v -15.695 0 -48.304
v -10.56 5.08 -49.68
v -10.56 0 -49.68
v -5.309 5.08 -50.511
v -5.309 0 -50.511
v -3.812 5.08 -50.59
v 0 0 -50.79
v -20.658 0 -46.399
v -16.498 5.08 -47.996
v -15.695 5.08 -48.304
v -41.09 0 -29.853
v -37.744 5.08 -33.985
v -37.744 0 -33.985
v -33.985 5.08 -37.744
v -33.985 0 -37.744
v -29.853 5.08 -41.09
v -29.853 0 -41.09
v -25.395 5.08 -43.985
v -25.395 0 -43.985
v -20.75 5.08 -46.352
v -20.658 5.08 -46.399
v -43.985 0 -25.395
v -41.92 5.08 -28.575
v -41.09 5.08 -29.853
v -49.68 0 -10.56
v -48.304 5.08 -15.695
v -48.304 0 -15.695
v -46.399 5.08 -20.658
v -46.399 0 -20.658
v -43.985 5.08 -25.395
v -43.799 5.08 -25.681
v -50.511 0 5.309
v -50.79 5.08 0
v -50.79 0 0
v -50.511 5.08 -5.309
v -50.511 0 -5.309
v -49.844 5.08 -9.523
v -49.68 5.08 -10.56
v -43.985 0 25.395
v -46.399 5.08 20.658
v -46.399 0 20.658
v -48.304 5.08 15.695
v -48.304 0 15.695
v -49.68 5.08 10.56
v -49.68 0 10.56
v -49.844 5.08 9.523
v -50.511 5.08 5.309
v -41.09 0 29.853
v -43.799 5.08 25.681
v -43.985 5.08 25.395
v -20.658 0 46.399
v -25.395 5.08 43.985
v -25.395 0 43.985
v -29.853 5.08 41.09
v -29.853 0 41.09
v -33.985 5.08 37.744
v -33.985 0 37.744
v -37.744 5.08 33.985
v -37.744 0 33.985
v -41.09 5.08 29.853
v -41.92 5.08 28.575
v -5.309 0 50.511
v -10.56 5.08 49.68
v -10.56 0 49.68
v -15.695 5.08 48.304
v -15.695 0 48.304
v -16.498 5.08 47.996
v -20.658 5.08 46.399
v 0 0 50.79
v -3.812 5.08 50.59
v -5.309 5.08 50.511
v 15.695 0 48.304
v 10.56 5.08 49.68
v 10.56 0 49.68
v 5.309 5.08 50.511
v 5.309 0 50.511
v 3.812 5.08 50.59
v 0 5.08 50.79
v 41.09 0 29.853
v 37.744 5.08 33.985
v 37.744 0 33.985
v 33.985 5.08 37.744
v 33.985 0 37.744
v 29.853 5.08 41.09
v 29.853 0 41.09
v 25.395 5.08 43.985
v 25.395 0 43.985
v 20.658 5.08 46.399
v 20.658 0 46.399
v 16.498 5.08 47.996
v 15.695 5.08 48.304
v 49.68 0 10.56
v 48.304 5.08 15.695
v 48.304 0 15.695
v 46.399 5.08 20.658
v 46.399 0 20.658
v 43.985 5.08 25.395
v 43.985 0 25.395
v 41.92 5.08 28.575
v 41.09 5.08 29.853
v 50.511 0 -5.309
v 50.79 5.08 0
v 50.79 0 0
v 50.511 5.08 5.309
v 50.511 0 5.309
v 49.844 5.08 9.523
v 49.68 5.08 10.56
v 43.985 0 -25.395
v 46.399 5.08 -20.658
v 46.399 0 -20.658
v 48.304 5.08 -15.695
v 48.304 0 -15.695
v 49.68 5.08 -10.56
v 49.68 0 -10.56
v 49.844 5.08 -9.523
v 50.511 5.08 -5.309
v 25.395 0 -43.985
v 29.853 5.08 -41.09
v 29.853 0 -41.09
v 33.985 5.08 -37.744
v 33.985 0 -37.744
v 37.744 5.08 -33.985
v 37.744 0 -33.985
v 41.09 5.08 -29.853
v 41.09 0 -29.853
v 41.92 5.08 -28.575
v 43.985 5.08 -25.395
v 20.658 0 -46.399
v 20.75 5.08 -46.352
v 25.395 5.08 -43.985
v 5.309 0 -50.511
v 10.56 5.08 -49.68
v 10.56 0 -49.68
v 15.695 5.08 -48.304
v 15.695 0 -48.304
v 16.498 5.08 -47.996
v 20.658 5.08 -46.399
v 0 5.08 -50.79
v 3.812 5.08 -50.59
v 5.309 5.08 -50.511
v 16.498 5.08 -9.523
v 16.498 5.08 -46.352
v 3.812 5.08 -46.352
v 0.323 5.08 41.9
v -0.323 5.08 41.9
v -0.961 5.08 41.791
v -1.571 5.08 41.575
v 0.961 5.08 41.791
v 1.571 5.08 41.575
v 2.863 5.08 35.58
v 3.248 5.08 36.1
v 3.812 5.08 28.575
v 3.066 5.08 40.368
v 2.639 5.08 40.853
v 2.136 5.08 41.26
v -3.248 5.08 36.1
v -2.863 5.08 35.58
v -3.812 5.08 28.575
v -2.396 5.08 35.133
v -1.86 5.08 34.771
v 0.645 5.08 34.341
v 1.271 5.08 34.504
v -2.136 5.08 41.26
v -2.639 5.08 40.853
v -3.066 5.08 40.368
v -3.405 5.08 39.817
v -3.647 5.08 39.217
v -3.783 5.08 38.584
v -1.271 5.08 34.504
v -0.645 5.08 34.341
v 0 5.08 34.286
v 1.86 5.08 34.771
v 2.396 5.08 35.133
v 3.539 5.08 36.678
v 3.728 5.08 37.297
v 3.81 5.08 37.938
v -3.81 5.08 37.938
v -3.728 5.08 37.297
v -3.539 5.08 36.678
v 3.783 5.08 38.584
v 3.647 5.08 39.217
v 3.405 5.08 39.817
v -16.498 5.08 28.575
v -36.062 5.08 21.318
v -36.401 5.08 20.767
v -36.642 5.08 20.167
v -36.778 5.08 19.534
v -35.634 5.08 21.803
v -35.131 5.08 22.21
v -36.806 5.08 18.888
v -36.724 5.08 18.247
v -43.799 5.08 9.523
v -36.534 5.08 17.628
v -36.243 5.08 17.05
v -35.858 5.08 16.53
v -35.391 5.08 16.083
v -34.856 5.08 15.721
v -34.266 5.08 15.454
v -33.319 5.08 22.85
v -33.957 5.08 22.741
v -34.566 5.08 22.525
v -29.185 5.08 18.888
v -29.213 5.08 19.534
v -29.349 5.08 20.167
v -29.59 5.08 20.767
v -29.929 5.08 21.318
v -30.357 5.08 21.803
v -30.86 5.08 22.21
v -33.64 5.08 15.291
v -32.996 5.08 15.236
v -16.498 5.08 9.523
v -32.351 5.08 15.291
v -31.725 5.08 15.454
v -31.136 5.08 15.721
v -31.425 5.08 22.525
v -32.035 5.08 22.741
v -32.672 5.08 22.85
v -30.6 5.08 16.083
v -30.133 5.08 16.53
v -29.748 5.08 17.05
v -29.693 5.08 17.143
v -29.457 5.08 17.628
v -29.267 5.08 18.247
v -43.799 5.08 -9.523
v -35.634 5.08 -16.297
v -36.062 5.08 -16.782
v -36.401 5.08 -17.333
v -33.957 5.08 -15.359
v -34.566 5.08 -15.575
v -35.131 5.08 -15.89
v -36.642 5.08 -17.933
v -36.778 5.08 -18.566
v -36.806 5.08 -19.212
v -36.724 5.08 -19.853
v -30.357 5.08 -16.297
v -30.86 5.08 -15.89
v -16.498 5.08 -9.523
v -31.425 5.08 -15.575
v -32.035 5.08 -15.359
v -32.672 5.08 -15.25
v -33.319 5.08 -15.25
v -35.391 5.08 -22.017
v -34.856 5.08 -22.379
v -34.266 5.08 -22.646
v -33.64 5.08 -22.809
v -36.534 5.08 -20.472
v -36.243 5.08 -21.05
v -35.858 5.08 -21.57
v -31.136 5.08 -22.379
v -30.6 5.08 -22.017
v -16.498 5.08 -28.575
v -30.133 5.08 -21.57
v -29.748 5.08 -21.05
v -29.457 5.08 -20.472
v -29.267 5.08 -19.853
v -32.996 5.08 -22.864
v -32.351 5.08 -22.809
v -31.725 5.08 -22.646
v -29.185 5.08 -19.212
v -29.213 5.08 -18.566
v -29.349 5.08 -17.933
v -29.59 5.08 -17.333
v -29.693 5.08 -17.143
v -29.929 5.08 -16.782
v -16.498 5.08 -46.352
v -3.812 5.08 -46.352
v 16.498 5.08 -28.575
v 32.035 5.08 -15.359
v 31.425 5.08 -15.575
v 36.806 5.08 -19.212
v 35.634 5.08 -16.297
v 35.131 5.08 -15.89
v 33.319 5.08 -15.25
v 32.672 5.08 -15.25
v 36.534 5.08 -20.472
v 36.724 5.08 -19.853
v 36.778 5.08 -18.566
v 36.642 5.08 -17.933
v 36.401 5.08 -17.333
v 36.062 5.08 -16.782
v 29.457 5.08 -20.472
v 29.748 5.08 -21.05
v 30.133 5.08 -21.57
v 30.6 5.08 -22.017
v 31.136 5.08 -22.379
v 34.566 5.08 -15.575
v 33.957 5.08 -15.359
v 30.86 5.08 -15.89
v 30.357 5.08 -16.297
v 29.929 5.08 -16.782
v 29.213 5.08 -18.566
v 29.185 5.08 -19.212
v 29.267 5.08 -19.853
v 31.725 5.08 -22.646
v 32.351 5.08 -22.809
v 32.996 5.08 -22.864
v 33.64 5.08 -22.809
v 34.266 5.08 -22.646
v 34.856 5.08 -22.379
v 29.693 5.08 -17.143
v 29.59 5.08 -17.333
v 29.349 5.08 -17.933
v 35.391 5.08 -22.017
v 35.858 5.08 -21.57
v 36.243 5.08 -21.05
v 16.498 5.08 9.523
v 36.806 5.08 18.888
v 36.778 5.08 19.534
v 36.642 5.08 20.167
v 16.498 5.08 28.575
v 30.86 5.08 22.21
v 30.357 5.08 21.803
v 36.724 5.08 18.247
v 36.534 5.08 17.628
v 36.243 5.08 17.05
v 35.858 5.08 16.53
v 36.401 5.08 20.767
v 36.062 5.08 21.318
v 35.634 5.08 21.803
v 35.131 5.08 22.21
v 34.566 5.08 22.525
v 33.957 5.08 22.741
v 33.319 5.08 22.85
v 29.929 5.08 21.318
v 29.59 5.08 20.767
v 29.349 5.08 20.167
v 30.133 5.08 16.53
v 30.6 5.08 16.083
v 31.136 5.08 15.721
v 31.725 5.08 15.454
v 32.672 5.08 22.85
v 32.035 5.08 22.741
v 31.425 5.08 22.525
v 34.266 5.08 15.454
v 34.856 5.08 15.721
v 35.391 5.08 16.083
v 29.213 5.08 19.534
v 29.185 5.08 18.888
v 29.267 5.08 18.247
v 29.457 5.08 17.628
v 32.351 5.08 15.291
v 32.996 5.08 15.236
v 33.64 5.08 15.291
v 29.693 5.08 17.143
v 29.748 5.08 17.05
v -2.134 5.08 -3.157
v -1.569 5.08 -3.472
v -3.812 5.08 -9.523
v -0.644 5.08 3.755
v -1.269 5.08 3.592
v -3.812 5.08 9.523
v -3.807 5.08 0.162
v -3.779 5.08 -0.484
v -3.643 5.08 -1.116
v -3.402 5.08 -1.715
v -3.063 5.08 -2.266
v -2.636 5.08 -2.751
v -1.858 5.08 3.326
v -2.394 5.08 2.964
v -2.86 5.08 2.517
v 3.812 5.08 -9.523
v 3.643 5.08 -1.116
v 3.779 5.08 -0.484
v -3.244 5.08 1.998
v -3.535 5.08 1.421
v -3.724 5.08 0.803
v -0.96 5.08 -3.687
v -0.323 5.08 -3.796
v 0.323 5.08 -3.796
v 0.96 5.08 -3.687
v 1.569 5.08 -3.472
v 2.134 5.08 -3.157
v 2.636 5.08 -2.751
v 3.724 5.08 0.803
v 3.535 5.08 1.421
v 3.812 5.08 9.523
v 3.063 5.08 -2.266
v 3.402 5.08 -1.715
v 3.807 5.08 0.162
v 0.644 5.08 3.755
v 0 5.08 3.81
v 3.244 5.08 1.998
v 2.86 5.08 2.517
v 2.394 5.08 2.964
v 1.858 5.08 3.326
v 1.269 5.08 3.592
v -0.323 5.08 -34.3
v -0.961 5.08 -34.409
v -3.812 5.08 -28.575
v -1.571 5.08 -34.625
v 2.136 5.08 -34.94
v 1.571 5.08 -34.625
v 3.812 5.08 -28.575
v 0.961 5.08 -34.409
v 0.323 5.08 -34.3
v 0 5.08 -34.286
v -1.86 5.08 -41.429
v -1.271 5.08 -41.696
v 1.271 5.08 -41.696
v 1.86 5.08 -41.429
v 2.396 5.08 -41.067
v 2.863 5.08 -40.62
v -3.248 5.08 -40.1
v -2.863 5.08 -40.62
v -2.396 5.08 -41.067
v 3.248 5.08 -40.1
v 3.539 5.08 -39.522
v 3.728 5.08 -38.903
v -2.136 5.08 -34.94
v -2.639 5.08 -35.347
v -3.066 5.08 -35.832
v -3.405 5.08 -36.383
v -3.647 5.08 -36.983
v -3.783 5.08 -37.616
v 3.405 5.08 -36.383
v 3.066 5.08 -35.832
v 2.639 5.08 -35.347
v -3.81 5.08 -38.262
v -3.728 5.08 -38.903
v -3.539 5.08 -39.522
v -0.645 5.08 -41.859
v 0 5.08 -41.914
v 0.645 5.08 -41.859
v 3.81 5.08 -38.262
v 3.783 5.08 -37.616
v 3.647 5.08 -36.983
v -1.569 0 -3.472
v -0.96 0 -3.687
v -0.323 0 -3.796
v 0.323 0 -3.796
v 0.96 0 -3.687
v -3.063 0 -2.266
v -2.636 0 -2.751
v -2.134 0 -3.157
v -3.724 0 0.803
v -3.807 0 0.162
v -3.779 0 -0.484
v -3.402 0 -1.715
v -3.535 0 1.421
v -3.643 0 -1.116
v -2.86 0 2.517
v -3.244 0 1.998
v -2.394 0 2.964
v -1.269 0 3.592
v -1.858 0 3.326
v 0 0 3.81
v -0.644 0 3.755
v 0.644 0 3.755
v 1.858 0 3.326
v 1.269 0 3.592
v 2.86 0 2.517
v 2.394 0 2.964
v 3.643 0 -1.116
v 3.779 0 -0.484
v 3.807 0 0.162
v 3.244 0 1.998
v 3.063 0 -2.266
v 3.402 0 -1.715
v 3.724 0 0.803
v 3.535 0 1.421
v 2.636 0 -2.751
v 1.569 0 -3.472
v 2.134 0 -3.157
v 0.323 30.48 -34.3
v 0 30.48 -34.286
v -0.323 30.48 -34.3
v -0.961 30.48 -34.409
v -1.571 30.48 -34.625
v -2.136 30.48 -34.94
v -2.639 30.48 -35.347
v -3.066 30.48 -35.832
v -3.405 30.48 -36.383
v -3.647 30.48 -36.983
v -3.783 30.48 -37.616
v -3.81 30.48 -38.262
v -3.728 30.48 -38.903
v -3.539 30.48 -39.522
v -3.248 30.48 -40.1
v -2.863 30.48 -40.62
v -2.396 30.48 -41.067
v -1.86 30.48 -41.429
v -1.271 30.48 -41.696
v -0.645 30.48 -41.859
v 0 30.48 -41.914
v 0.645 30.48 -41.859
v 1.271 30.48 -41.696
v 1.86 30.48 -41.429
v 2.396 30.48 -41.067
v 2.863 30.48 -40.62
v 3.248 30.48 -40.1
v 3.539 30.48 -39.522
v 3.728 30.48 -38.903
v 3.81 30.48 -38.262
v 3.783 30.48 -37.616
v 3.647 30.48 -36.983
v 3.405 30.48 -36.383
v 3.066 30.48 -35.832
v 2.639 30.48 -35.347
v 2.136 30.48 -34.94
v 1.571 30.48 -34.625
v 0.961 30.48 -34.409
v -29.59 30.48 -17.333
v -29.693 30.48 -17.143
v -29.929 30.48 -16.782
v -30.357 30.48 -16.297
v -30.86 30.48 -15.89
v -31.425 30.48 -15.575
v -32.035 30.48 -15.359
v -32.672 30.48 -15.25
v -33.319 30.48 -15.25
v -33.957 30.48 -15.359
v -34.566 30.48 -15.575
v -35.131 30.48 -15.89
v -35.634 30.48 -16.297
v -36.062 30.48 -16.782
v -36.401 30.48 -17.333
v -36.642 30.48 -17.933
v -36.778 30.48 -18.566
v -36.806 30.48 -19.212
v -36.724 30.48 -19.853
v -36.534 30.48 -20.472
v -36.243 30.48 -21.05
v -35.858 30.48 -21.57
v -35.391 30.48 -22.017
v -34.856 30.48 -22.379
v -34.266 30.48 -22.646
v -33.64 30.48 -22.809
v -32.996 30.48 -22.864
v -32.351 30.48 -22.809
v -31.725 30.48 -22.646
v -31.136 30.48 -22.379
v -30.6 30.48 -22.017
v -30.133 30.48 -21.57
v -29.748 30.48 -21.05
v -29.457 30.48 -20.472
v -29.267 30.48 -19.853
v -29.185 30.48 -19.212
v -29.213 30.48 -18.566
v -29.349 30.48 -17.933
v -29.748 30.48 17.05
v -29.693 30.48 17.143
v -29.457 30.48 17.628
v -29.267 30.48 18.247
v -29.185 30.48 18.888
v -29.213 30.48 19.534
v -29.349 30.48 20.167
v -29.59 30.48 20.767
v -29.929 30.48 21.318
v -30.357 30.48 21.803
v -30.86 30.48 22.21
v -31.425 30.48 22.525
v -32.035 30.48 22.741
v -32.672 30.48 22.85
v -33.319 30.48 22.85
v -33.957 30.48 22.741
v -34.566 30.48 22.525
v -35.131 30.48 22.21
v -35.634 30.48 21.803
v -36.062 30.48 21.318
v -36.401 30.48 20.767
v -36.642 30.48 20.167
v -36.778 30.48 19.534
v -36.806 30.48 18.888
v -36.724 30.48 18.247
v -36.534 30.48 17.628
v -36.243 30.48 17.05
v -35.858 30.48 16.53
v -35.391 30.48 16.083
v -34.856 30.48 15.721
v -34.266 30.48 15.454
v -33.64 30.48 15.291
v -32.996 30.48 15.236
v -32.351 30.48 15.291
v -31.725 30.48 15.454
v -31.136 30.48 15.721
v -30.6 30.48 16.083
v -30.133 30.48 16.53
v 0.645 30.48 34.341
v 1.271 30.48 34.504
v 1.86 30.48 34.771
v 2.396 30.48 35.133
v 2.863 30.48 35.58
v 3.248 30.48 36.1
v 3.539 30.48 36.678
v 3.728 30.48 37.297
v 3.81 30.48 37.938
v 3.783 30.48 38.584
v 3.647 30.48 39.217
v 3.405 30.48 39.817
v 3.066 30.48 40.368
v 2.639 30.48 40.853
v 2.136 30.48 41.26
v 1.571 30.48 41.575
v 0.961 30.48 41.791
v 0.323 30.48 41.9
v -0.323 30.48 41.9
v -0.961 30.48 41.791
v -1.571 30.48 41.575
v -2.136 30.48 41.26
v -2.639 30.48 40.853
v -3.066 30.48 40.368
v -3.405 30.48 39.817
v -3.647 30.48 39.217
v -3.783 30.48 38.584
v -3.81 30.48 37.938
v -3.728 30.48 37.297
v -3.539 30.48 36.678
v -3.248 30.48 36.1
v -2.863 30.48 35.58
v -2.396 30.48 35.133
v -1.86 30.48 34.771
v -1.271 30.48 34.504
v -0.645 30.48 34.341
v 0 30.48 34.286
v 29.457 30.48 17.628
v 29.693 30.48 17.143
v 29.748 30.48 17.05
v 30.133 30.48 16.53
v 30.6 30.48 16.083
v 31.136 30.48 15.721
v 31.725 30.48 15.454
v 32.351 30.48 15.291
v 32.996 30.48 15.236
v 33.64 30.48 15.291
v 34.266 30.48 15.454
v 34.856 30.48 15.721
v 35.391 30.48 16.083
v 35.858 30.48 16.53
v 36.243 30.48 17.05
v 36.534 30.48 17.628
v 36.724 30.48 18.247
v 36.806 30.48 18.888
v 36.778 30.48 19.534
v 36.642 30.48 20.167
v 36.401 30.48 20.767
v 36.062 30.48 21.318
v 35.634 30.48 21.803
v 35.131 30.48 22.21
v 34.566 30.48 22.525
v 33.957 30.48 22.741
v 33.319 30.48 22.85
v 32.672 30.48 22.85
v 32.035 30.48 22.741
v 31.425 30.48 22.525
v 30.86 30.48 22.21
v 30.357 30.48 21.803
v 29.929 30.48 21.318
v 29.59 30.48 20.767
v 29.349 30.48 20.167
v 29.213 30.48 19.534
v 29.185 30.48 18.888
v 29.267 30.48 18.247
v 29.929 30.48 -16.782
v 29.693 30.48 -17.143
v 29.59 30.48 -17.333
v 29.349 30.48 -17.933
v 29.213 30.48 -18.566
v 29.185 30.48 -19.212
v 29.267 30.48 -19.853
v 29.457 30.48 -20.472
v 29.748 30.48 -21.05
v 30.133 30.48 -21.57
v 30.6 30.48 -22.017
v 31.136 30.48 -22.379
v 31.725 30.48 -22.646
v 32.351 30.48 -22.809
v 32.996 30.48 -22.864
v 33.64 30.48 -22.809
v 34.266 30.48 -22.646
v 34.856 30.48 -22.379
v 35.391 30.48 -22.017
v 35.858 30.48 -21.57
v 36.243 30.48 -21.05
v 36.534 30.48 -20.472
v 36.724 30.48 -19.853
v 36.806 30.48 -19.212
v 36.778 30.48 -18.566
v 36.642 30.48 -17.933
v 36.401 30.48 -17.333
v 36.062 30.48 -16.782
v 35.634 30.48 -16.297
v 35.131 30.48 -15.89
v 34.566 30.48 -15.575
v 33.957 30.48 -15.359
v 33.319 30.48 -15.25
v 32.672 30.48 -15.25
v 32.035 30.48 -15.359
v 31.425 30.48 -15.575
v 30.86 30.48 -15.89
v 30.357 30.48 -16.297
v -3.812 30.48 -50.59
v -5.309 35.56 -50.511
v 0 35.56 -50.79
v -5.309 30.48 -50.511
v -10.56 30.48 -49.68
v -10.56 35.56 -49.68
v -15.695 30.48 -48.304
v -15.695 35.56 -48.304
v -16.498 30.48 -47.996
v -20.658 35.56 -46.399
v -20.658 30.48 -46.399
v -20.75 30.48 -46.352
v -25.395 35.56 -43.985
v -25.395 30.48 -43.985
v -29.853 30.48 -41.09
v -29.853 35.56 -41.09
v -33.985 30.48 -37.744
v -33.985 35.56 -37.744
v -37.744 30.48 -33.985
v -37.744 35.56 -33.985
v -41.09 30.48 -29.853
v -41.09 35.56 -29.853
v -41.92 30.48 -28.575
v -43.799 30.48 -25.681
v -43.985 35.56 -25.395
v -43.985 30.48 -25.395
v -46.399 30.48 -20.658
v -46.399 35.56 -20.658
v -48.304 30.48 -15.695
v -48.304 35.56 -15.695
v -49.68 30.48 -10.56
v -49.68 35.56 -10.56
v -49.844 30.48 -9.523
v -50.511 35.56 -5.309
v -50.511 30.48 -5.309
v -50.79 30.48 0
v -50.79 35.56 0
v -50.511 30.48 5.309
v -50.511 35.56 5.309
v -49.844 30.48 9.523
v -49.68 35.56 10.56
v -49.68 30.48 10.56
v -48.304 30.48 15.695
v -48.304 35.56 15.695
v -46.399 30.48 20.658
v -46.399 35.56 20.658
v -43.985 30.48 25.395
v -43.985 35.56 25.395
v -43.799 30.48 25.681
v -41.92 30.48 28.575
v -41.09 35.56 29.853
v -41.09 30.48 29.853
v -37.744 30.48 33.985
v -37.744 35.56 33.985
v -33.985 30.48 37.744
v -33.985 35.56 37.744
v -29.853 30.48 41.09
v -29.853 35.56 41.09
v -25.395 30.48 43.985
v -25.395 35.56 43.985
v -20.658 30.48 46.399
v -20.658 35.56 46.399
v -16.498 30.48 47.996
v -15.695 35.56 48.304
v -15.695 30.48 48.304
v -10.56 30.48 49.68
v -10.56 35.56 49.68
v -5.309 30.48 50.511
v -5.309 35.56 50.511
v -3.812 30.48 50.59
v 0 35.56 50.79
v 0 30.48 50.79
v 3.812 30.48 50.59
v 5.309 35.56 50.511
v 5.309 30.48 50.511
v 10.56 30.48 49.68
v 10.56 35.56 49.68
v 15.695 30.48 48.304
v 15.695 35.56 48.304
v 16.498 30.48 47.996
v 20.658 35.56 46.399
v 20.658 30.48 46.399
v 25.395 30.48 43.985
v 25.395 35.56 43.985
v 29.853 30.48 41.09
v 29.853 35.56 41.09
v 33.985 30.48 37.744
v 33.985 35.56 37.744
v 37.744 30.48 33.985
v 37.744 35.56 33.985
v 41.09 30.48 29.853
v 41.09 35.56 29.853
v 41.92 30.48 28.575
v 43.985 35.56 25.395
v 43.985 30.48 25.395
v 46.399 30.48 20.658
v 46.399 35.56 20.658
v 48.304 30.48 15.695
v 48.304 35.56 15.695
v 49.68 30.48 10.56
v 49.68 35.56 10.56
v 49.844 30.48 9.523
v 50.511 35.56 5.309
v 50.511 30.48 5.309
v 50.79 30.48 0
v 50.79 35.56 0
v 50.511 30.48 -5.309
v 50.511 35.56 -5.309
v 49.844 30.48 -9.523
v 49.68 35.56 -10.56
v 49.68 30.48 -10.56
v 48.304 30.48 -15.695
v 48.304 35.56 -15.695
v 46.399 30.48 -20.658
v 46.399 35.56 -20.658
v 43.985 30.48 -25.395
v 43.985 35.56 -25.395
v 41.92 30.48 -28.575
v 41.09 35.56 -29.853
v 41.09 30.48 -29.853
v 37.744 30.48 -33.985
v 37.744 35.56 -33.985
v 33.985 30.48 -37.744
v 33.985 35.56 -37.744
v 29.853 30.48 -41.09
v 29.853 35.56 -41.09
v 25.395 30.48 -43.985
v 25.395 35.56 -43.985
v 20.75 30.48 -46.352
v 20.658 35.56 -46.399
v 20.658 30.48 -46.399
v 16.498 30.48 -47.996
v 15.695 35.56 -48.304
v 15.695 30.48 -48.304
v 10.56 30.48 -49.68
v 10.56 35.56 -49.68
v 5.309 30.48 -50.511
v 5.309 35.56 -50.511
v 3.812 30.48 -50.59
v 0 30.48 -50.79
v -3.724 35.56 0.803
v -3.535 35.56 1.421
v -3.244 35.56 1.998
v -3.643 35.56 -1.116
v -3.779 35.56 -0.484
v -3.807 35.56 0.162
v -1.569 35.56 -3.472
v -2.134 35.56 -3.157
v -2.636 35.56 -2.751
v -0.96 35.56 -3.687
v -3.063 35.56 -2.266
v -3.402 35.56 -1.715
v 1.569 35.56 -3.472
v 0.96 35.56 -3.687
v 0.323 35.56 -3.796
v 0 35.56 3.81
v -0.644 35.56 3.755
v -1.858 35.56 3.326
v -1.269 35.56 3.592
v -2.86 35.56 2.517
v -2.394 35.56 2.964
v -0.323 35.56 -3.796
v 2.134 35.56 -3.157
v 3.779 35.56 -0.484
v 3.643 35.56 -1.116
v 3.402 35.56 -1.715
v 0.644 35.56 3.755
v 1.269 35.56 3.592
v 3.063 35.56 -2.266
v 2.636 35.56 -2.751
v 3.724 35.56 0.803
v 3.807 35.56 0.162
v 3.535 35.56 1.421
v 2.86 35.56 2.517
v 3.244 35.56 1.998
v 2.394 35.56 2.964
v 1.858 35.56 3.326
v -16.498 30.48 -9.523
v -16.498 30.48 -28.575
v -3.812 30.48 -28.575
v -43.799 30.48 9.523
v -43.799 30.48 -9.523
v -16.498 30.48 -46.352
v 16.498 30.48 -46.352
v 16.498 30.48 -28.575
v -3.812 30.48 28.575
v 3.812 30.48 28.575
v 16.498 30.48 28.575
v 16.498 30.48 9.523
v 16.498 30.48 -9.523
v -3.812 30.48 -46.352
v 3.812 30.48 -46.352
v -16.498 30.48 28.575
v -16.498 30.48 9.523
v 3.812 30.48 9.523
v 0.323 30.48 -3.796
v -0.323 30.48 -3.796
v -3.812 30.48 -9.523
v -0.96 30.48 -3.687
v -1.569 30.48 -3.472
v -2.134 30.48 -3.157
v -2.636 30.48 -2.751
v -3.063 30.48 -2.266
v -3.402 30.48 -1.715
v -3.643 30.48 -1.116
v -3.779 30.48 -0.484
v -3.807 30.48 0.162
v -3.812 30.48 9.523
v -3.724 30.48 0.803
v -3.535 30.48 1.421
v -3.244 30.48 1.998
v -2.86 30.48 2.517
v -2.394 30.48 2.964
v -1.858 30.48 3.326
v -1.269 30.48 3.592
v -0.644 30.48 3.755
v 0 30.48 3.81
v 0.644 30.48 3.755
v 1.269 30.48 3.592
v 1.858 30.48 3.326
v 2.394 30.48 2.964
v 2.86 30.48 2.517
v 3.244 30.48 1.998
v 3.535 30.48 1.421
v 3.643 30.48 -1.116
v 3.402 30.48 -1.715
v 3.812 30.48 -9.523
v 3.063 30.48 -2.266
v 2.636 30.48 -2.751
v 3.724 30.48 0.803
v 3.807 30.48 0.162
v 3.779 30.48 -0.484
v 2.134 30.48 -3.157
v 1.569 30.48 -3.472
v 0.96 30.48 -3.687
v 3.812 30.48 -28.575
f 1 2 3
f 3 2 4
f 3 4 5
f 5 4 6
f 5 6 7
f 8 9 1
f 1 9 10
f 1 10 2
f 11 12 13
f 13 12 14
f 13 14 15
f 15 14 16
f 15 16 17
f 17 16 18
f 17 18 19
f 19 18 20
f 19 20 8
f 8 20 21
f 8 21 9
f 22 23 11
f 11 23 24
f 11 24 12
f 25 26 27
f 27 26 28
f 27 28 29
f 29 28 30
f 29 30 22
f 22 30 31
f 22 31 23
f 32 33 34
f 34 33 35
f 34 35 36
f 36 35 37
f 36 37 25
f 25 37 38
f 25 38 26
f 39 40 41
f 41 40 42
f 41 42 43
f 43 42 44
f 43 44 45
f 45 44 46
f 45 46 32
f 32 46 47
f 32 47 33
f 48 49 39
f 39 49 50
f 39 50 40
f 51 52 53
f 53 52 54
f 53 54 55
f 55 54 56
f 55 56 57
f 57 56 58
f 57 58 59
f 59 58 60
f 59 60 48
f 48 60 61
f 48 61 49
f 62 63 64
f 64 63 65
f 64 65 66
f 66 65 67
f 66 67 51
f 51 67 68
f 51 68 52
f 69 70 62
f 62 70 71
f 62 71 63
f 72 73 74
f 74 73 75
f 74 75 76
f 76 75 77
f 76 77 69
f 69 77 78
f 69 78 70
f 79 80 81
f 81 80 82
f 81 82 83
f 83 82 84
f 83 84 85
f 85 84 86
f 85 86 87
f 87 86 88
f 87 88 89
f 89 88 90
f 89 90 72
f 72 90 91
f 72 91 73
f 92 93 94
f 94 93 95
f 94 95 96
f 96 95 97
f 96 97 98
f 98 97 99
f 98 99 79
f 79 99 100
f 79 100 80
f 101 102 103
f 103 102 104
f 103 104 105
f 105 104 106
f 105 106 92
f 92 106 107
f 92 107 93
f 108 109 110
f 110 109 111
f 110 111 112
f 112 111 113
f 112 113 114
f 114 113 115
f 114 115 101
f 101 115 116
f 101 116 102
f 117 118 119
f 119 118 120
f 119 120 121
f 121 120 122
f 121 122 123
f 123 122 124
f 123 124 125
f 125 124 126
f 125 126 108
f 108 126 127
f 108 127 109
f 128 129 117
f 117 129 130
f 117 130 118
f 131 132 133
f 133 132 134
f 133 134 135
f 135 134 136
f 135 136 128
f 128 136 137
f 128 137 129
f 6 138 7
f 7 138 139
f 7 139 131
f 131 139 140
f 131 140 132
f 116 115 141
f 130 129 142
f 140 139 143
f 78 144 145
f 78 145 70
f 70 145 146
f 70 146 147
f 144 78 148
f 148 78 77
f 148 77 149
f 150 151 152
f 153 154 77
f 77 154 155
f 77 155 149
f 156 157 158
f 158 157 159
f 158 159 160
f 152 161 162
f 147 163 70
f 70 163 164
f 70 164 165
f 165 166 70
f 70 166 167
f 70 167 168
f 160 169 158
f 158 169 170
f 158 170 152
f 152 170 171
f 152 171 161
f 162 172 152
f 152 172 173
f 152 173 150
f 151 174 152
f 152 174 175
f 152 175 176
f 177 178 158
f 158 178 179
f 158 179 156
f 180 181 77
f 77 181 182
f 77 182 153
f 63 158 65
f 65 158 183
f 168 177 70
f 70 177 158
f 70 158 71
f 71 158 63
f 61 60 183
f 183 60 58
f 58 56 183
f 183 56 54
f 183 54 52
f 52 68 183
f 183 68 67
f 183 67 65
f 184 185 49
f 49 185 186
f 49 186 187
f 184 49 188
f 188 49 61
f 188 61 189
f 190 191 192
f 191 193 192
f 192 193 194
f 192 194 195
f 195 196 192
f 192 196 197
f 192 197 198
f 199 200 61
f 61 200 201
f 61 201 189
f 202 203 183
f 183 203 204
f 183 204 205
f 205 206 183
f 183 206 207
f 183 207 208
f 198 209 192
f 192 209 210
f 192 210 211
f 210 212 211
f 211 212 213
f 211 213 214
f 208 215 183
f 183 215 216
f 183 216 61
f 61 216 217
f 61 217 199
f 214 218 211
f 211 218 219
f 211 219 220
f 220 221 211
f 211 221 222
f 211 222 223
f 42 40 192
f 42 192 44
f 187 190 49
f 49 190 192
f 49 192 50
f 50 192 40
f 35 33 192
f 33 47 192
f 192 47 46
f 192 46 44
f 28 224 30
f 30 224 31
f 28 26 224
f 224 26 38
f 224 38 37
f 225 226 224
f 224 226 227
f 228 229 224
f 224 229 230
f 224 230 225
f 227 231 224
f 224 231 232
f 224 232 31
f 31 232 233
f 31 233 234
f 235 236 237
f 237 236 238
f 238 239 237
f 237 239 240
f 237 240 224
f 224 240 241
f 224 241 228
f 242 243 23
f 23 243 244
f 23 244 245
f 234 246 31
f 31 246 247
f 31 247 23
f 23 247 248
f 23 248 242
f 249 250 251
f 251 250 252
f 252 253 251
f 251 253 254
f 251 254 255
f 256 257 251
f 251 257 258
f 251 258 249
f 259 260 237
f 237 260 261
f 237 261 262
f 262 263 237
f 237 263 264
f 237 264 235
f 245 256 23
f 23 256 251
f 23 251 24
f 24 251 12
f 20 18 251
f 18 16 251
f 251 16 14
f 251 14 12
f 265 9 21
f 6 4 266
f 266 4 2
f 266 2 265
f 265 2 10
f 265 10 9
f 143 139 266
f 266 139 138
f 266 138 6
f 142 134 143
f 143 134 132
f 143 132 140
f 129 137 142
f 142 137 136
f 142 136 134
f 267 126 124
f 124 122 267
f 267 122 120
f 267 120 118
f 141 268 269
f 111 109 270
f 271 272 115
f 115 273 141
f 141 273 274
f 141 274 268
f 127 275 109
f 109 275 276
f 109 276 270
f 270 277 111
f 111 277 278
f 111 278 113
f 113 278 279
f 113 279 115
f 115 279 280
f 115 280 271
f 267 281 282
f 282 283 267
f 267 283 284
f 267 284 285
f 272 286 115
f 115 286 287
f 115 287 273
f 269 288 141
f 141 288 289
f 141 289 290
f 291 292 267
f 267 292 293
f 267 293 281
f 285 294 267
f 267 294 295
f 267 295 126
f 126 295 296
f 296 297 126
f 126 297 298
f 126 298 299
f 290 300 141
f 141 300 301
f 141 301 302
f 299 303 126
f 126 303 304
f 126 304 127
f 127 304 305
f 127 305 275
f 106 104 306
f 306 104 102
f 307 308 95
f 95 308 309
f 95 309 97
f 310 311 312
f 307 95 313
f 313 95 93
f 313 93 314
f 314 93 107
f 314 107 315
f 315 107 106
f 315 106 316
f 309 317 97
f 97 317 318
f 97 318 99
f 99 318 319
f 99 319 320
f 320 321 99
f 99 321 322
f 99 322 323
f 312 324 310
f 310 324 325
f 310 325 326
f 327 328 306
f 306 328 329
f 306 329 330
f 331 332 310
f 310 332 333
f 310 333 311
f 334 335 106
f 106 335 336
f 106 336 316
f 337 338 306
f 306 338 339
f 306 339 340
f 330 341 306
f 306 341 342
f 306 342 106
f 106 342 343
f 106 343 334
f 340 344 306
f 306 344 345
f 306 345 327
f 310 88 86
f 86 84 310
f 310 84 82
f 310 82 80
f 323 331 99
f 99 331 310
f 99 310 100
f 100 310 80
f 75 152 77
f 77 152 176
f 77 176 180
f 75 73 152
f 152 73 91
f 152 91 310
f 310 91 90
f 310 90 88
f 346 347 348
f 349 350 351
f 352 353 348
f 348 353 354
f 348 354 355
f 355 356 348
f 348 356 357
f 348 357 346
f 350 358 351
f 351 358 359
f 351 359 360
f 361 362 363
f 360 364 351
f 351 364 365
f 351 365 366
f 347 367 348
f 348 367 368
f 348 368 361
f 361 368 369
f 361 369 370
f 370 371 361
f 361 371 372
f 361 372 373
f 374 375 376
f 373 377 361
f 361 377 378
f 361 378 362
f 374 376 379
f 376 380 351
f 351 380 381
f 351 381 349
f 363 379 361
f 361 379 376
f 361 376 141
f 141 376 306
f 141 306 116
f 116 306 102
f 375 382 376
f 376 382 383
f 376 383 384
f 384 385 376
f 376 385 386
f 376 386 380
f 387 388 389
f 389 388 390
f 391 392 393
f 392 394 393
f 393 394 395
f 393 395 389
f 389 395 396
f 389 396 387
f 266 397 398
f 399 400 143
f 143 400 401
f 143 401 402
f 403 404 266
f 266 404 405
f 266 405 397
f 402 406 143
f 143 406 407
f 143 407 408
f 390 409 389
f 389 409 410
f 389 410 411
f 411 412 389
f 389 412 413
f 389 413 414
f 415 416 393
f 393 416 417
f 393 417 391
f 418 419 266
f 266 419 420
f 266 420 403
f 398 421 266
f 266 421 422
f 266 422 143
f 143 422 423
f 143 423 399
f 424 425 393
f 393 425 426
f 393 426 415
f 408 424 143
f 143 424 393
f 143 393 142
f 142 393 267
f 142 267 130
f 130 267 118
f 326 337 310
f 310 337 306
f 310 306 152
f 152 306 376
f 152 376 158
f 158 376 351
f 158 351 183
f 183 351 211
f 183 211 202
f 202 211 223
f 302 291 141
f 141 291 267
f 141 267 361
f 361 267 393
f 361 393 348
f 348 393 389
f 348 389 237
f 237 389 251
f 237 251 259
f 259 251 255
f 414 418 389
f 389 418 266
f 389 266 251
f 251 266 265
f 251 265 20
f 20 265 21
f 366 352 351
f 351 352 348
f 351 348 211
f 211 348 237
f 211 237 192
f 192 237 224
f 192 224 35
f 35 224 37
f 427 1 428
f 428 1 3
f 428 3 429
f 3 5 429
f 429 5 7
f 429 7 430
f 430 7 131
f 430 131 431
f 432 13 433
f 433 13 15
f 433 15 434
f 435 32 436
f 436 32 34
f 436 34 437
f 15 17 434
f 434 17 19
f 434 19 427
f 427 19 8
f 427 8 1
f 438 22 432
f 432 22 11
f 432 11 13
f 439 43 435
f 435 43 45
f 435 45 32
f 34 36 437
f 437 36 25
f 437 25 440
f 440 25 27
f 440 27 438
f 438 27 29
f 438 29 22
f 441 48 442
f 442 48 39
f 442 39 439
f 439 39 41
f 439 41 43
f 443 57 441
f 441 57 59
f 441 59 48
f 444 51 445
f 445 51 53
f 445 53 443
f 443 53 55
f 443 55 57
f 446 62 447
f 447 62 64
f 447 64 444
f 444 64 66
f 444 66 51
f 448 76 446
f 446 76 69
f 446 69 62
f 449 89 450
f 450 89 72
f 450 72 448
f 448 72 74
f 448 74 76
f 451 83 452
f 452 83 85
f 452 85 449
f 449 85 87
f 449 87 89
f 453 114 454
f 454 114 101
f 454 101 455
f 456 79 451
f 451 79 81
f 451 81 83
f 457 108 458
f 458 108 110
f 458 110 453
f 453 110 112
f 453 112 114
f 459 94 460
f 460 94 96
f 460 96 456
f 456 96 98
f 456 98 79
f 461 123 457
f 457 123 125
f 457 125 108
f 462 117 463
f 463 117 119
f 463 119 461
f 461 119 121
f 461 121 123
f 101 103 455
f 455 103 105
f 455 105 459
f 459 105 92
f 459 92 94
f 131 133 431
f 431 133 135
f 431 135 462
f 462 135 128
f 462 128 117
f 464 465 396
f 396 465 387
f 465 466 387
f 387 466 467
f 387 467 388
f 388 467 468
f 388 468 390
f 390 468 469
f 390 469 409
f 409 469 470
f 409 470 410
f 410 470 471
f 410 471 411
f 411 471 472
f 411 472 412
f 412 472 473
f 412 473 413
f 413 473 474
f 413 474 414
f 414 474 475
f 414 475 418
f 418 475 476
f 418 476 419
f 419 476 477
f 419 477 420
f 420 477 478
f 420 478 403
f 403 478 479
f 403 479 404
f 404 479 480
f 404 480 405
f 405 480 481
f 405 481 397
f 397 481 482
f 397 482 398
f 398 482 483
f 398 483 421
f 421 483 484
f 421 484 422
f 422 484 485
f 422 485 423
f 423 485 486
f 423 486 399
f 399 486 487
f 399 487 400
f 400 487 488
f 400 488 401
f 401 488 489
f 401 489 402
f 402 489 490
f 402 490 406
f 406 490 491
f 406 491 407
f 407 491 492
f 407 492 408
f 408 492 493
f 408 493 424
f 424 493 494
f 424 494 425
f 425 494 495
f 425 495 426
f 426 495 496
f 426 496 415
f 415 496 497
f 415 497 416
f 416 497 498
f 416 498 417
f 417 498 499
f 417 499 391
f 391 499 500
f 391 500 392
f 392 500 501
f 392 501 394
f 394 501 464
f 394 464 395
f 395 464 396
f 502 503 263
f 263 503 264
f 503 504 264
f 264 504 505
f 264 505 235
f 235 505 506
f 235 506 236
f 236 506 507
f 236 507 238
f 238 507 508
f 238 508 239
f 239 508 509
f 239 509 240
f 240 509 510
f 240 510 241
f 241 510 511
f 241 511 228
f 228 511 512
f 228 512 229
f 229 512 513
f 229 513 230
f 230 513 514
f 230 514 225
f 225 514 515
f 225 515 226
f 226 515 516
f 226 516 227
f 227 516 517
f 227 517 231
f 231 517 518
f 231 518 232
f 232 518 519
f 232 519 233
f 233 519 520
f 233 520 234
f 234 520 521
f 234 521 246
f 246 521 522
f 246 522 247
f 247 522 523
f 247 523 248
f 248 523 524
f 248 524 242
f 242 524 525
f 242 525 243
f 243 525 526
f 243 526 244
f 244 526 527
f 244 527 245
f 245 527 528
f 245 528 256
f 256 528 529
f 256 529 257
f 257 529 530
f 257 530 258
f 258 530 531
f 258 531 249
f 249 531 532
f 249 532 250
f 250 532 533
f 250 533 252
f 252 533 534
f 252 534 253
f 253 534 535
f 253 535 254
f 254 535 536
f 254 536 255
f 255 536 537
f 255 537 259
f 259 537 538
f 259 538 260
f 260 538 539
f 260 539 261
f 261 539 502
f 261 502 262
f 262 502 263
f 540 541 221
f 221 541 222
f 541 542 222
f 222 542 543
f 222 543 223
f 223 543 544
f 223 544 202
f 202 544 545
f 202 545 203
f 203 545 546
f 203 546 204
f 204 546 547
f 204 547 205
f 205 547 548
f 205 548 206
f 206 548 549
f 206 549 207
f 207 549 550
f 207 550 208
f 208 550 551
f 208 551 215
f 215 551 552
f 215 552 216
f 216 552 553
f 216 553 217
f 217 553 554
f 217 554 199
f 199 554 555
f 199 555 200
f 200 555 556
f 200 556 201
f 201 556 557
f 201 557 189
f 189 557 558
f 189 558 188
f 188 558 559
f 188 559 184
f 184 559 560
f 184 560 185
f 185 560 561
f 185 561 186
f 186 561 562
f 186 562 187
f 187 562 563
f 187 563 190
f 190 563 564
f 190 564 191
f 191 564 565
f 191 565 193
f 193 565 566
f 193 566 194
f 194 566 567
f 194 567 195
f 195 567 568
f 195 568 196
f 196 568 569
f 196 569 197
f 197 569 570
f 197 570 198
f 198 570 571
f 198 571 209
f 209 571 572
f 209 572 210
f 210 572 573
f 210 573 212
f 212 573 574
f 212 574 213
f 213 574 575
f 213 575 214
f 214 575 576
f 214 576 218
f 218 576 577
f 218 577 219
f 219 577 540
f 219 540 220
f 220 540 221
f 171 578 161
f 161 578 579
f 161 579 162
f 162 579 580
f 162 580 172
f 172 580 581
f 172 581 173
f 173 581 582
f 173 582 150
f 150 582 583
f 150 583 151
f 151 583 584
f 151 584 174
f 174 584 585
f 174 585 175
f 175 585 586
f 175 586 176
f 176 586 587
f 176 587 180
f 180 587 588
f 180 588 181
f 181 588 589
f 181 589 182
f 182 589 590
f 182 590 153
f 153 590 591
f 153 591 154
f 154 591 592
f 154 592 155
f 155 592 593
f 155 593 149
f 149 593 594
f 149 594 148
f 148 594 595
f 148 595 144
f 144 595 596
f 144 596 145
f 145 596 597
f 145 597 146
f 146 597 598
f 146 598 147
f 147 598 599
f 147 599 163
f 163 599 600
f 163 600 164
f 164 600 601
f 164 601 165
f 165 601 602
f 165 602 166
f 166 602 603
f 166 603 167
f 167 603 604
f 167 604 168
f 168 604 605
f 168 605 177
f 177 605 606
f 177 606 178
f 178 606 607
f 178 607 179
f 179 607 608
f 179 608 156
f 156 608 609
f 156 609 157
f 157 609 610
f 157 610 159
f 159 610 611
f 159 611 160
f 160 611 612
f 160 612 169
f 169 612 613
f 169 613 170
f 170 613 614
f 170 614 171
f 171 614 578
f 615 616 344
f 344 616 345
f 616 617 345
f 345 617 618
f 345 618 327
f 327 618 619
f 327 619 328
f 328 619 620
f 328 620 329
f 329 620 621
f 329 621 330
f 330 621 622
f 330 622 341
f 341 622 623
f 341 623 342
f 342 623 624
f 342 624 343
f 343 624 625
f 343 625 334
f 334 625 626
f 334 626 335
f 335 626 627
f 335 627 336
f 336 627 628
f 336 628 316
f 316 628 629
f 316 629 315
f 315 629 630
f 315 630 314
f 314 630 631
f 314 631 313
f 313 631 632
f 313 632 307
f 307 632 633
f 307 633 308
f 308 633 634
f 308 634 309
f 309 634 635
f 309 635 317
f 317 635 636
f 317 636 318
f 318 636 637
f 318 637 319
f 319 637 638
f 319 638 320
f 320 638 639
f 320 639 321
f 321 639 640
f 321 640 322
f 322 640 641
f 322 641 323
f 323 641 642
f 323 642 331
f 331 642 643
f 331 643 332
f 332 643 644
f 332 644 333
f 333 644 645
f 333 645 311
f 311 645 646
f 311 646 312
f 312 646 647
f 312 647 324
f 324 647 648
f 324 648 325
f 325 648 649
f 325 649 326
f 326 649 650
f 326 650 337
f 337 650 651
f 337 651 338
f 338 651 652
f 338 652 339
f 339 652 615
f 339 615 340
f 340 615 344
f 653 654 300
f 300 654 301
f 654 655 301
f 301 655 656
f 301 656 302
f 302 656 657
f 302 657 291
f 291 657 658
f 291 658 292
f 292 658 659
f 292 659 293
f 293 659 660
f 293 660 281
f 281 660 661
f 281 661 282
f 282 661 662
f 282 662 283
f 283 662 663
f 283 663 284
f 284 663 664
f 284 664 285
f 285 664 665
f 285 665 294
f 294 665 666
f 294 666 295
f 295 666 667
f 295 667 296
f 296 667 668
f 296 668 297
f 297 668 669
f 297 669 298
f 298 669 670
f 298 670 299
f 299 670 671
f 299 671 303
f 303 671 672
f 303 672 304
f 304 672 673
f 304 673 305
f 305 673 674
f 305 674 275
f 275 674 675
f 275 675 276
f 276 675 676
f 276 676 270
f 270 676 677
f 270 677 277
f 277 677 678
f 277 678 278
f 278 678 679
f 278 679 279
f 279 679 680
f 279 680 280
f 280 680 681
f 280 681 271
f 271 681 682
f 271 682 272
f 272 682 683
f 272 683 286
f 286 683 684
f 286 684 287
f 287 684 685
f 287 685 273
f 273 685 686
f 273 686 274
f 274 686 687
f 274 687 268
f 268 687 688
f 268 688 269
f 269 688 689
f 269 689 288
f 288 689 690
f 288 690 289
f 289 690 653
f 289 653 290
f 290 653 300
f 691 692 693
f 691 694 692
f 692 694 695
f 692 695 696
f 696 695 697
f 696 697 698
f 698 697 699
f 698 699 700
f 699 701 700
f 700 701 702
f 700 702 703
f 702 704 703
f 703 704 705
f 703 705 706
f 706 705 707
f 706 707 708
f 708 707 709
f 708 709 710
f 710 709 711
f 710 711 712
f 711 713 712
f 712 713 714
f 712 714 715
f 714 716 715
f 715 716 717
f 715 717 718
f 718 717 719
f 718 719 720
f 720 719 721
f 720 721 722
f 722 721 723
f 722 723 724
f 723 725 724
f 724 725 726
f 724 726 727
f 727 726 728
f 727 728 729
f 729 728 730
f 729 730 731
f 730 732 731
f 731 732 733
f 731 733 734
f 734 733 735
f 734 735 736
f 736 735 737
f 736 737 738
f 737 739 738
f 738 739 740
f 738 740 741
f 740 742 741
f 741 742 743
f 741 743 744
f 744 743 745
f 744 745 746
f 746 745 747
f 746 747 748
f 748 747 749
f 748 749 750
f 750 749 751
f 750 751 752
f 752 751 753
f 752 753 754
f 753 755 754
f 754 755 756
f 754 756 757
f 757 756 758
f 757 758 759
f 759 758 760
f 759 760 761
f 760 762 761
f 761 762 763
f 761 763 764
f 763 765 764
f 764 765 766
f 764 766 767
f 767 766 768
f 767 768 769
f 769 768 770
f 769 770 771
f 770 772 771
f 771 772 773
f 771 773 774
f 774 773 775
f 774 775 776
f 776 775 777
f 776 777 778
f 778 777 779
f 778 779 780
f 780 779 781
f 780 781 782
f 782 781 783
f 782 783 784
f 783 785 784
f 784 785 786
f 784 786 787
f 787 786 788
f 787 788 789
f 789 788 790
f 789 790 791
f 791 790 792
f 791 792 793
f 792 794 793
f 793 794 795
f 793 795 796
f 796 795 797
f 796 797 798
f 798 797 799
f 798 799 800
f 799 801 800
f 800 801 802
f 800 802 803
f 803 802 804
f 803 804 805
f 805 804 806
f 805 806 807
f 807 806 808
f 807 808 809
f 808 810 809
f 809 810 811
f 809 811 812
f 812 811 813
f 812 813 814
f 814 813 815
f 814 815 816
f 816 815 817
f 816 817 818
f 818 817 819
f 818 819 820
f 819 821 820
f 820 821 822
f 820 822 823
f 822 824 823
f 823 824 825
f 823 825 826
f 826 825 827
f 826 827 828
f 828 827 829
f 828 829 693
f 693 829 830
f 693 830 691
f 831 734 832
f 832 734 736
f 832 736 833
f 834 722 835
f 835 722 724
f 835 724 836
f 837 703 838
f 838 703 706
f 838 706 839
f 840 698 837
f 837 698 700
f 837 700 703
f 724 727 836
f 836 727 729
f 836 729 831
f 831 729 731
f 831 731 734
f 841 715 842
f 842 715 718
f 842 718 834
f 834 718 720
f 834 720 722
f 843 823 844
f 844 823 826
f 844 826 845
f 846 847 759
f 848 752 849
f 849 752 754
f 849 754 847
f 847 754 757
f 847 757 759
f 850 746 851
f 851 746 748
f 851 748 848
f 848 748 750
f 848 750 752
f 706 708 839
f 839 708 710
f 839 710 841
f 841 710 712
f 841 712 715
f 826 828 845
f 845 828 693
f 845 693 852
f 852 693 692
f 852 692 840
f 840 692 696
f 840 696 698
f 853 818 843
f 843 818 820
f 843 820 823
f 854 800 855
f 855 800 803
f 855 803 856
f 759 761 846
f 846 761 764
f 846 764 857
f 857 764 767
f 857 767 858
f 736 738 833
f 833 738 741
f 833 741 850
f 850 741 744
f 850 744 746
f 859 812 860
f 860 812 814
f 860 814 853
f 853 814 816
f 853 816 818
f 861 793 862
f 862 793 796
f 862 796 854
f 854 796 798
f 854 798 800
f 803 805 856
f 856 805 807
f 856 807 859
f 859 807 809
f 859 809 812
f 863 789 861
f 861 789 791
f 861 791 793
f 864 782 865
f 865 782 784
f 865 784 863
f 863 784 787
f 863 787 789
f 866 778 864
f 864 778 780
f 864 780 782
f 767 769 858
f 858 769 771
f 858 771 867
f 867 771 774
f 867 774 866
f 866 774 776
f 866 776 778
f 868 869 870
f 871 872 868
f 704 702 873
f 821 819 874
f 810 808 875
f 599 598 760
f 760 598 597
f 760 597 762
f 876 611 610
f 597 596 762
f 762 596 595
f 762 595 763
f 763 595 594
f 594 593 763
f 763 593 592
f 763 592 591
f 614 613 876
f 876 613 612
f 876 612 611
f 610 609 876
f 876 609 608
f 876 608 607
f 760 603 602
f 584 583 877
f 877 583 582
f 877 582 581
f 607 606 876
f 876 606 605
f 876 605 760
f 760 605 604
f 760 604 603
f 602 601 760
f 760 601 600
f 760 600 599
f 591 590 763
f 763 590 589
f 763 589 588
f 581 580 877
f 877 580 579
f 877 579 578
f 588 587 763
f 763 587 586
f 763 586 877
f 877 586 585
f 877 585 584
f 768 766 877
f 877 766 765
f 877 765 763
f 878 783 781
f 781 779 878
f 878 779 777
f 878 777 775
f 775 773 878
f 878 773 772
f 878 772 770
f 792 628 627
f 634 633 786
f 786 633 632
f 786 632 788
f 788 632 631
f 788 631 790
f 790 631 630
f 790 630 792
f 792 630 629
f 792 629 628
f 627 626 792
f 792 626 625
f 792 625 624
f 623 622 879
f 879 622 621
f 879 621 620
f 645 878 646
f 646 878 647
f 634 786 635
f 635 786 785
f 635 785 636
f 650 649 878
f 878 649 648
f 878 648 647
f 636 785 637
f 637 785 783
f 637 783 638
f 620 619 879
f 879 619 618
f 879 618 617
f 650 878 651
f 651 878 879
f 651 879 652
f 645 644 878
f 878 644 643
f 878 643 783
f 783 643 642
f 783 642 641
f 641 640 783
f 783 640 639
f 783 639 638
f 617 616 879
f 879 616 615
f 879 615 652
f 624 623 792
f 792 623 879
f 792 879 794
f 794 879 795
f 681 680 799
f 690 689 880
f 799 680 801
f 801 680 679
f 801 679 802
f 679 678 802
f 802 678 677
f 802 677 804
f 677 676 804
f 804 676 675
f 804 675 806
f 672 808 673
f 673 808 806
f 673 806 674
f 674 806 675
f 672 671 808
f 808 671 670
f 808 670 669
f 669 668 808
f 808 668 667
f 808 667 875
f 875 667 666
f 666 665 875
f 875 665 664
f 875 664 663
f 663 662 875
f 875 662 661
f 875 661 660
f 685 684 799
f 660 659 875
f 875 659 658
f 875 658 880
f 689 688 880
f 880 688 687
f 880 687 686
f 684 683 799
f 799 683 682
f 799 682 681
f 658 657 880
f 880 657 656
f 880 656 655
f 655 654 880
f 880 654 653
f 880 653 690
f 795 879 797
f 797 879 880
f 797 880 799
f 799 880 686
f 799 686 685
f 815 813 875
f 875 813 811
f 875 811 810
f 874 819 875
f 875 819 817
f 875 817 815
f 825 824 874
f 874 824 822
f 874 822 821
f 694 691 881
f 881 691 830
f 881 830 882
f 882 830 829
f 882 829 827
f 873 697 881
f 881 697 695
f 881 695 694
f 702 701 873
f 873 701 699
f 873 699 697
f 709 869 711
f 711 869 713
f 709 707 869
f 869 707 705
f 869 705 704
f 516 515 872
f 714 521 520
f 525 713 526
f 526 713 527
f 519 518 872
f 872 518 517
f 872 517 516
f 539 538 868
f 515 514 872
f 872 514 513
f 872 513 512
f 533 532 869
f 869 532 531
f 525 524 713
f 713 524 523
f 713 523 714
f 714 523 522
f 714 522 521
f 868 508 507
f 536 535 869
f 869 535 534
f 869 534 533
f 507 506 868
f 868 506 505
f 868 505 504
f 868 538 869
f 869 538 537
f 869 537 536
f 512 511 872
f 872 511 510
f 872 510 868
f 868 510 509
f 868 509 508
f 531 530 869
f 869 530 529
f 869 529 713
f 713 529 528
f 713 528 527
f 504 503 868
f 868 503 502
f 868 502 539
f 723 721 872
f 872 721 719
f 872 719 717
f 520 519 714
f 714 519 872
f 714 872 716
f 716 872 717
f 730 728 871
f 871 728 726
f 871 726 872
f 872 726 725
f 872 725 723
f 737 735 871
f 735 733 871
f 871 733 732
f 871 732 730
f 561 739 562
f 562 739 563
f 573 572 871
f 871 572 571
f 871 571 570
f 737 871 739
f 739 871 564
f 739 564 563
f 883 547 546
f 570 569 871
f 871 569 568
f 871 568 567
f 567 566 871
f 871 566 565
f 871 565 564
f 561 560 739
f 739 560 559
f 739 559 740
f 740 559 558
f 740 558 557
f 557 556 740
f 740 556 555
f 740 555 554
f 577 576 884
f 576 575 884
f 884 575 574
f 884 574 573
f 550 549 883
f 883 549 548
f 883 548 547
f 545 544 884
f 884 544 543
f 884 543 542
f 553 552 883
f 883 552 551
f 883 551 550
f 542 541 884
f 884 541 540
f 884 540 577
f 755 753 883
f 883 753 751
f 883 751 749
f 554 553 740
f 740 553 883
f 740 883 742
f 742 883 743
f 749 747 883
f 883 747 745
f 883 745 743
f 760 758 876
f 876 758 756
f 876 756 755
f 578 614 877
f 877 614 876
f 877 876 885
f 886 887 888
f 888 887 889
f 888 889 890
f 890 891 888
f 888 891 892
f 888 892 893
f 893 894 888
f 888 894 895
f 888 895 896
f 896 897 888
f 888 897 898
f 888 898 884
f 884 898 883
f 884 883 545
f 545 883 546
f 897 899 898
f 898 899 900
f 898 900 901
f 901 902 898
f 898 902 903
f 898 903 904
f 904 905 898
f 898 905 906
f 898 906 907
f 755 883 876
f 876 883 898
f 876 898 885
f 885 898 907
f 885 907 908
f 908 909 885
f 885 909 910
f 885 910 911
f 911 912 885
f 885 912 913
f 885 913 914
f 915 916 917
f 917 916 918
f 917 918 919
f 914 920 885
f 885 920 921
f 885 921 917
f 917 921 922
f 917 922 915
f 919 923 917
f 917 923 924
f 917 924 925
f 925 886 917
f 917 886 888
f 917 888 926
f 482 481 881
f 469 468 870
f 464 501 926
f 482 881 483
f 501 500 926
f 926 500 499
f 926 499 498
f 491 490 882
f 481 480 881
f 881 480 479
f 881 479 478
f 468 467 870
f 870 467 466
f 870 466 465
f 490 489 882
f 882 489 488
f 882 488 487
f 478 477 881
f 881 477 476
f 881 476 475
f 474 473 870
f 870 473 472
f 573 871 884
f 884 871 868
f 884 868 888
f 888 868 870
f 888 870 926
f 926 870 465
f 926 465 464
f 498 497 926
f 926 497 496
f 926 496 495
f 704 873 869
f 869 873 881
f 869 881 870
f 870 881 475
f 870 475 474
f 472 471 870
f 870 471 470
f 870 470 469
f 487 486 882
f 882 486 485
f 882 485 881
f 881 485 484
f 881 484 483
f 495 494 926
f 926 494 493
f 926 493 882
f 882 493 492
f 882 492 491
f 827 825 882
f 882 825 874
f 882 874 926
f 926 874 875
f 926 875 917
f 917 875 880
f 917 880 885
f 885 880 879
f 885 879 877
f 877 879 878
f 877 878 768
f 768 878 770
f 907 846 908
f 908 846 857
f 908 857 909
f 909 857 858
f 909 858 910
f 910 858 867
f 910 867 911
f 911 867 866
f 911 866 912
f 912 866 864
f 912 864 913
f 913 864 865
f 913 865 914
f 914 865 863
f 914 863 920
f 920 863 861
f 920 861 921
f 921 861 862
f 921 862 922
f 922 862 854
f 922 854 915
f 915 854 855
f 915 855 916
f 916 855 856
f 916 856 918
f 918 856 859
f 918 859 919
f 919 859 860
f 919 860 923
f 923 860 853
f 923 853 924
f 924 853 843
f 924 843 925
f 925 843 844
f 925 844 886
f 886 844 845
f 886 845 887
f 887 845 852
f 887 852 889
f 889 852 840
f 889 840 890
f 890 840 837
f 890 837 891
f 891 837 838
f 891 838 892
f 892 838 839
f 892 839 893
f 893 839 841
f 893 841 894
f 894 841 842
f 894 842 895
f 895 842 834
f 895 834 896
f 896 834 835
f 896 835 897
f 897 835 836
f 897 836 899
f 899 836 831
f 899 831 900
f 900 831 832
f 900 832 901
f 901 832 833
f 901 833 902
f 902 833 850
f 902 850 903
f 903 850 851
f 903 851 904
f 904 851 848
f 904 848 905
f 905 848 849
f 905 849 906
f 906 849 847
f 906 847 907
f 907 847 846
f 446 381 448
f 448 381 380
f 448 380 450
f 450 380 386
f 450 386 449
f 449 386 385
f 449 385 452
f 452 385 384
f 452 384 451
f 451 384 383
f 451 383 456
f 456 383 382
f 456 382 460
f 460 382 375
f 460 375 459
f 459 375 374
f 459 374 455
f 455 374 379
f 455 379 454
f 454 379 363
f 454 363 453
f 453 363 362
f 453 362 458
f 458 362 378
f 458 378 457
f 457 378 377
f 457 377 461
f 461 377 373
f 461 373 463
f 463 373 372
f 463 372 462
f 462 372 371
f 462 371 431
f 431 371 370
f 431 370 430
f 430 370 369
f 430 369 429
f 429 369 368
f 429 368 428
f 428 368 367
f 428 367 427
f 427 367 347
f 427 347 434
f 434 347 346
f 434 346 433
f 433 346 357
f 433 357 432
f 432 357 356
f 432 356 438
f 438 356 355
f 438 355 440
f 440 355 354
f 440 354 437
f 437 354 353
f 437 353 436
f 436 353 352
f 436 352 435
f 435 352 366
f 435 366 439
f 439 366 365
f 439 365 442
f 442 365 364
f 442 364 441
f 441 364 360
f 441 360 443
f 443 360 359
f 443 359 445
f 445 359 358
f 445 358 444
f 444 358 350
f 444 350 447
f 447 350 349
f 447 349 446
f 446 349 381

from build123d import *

# Parameters (mm, degrees)
SKETCH1_R           = 50.789558068
BOSS_EXTRUDE1_DEPTH = 5.08
SKETCH3_R           = 3.813733887
BOSS_EXTRUDE2_DEPTH = 25.4
CIRPATTERN1_COUNT   = 6
SKETCH4_R           = 50.789558068
BOSS_EXTRUDE3_DEPTH = 5.08
SKETCH6_R           = 3.81
CUT_EXTRUDE1_DEPTH  = 81.147813554


with BuildPart() as part:
    # Sketch1 → Boss-Extrude1 (new body)
    with BuildSketch(Plane(origin=(0, 0, 0), x_dir=(1, 0, 0), z_dir=(0, 1, 0))):
        with Locations(Location((0, 0, 0), (0, 0, 270))):
            Circle(SKETCH1_R)
    extrude(amount=BOSS_EXTRUDE1_DEPTH)

    # Sketch3 → Boss-Extrude2 (add)
    with BuildSketch(Plane(origin=(0, 5.08, 0), x_dir=(1, 0, 0), z_dir=(0, 1, 0))):
        with Locations(Location((0, 38.1, 0), (0, 0, 270))):
            Circle(SKETCH3_R)
    boss_extrude2 = extrude(amount=BOSS_EXTRUDE2_DEPTH)

    # CirPattern1: Boss-Extrude2 ×6 about axis
    cirpattern1_axis = Axis((0, 0, 0), (0, 1, 0))
    for i in range(1, CIRPATTERN1_COUNT):
        add(boss_extrude2.rotate(cirpattern1_axis, i * 360 / CIRPATTERN1_COUNT))

    # Sketch4 → Boss-Extrude3 (add)
    with BuildSketch(Plane(origin=(0, 30.48, 0), x_dir=(1, 0, 0), z_dir=(0, 1, 0))):
        with Locations(Location((0, 0, 0), (0, 0, 270))):
            Circle(SKETCH4_R)
    extrude(amount=BOSS_EXTRUDE3_DEPTH)

    # Sketch6 → Cut-Extrude1 (cut, through all)
    with BuildSketch(Plane(origin=(0, 35.56, 0), x_dir=(1, 0, 0), z_dir=(0, 1, 0))):
        with Locations(Location((0, 0, 0), (0, 0, 270))):
            Circle(SKETCH6_R)
    extrude(amount=-CUT_EXTRUDE1_DEPTH, mode=Mode.SUBTRACT)


solid = part.part
